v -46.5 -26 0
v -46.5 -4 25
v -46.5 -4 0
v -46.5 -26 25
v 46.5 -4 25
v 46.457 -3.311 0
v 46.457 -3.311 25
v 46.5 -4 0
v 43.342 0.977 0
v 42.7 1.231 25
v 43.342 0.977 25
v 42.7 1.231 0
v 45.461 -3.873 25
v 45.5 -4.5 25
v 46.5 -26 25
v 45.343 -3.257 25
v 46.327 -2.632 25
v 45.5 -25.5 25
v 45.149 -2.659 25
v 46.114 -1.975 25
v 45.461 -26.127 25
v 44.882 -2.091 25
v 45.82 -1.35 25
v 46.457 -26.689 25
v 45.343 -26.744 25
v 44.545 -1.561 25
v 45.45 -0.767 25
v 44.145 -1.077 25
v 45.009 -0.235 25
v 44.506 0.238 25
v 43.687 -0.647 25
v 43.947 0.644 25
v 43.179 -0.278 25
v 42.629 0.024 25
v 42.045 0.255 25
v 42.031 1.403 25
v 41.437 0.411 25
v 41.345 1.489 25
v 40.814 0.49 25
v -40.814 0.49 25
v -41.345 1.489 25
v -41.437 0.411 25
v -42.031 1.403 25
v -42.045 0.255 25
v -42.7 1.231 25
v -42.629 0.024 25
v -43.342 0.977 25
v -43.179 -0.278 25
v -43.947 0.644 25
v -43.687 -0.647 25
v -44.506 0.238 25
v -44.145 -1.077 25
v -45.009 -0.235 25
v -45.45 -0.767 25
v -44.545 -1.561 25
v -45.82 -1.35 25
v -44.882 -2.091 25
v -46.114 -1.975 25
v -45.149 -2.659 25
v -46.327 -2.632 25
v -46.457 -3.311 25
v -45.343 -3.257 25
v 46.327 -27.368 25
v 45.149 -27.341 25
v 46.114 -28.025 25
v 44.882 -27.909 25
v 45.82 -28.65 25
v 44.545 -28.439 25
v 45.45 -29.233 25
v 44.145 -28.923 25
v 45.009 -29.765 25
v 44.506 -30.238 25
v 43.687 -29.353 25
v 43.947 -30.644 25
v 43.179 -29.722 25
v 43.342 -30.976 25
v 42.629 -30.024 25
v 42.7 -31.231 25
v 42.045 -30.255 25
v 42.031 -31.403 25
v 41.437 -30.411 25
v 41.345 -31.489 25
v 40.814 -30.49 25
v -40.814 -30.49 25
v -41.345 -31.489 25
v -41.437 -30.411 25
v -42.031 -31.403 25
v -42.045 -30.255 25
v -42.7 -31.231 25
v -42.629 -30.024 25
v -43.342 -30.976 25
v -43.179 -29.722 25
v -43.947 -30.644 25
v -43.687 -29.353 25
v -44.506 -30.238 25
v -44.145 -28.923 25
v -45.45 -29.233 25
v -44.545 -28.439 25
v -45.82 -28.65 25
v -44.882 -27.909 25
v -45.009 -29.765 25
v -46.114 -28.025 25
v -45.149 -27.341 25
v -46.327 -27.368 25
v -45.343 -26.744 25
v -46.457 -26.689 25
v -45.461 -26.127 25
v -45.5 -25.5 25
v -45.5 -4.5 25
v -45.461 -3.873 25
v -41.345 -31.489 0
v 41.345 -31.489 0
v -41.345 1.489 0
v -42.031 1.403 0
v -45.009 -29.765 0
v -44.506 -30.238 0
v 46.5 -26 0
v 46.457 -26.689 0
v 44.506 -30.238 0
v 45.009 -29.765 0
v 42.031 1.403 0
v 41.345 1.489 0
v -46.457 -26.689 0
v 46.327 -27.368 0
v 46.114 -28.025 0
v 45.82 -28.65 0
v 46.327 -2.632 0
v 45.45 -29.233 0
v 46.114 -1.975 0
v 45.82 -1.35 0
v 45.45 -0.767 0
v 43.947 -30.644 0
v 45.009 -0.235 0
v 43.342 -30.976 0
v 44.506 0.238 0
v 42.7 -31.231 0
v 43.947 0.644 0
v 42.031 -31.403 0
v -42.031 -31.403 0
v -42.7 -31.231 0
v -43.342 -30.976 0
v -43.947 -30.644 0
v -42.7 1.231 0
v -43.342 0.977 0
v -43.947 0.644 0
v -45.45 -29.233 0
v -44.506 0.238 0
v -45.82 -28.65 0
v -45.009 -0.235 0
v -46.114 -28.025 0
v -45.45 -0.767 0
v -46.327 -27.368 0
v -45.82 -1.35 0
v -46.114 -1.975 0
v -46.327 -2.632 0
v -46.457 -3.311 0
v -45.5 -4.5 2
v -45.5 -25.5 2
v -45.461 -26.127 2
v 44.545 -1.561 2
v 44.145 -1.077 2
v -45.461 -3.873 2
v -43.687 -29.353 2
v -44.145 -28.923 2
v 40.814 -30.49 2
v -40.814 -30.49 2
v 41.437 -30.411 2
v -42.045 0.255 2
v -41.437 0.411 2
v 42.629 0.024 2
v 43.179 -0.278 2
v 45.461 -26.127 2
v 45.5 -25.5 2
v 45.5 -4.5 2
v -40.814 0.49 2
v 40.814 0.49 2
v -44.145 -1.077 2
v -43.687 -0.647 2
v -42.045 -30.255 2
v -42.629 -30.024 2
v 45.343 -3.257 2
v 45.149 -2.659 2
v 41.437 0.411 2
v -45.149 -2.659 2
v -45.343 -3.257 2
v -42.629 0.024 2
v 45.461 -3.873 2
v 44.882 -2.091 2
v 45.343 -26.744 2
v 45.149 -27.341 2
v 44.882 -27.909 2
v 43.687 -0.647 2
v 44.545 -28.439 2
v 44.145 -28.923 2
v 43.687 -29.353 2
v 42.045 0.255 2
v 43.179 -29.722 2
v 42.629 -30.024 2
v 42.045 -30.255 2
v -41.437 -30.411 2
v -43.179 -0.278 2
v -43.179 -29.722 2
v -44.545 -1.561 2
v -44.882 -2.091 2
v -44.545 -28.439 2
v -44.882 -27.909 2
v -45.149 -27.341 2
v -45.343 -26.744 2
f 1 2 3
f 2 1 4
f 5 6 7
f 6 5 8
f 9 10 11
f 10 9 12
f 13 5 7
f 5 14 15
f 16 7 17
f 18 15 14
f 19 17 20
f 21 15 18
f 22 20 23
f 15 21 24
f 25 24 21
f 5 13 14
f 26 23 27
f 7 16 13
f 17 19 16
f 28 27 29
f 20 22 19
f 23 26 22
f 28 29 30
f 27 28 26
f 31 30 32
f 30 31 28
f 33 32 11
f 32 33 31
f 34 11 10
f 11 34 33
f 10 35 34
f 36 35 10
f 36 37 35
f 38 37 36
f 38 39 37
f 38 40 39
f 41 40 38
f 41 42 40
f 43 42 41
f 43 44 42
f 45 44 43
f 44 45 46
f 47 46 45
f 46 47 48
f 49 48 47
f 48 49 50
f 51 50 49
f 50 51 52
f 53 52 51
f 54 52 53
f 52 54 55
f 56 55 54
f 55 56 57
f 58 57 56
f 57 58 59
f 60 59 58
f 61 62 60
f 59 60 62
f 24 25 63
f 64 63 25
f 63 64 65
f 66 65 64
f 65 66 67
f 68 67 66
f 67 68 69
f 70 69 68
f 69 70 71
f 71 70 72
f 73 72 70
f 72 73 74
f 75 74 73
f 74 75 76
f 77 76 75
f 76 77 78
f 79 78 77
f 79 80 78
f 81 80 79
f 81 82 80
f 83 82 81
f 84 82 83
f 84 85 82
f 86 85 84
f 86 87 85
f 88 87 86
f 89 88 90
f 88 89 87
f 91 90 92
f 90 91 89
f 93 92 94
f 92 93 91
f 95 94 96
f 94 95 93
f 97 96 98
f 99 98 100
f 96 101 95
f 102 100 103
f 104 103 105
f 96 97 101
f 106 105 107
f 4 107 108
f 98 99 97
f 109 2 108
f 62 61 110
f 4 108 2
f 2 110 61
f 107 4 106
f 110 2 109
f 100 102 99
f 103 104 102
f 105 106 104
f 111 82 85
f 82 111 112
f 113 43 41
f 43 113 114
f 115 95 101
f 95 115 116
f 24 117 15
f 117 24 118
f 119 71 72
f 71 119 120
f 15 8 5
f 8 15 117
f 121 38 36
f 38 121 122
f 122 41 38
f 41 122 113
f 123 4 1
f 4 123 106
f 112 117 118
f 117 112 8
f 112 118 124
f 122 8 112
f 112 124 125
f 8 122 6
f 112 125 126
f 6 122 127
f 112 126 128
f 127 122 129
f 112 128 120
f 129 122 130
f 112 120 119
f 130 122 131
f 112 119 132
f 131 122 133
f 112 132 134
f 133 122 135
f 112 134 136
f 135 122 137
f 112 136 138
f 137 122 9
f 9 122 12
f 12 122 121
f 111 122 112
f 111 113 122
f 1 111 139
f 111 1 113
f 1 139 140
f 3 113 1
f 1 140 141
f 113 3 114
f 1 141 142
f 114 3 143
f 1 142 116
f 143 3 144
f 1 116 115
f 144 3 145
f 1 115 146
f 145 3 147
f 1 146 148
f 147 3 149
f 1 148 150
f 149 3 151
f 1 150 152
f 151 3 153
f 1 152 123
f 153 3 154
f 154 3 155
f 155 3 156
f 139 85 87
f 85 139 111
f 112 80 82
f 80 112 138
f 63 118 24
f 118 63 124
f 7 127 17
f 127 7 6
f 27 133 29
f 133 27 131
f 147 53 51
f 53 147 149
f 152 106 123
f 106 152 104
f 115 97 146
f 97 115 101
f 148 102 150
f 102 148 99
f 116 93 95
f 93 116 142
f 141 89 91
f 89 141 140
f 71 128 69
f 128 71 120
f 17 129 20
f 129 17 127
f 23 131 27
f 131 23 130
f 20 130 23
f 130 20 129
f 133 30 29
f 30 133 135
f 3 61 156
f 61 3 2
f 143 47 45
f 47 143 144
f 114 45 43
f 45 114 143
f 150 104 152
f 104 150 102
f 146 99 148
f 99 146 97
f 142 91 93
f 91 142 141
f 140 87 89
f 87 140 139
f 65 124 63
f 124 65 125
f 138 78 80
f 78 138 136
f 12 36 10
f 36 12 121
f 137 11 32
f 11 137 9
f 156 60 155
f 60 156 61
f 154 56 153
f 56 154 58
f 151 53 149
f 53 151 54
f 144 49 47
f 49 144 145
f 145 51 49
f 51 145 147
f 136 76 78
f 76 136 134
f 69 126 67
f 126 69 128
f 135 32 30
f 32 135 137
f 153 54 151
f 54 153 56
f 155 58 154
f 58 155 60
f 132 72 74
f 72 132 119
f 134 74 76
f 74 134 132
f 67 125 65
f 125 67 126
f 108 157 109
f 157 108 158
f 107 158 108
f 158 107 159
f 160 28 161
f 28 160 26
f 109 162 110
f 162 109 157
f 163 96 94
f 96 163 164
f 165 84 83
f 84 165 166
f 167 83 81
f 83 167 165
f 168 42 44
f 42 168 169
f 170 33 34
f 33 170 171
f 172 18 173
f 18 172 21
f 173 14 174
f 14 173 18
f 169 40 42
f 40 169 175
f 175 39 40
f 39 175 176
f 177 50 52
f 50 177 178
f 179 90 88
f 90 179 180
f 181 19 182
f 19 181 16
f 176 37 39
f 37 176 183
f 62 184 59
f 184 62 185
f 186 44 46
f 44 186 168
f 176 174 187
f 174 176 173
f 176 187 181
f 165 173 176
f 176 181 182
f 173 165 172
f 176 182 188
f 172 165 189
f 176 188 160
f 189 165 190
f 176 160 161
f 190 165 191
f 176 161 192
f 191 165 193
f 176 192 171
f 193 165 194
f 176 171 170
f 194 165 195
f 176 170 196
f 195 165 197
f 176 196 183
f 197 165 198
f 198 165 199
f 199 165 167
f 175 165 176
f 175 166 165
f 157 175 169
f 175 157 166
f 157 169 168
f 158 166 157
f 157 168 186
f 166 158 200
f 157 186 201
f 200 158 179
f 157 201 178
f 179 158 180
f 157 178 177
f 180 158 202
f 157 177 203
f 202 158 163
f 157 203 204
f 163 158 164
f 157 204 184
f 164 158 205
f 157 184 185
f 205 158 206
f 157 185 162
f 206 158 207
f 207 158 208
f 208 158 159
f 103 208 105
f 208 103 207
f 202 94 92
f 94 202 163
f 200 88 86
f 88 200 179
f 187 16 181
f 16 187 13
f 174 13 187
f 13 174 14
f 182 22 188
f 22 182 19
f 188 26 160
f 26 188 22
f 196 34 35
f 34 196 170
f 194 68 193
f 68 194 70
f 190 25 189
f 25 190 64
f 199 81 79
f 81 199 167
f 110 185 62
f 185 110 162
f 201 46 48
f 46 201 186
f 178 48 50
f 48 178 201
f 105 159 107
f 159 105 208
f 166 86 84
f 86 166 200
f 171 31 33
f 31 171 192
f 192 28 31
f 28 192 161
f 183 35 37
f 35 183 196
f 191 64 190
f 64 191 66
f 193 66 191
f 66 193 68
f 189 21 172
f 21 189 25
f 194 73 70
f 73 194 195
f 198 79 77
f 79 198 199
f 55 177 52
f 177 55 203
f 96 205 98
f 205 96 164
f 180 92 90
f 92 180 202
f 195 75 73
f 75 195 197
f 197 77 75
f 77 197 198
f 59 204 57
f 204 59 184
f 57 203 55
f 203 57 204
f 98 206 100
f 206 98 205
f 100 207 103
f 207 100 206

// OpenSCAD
$fn = 50;


difference() {
	union() {
		translate(v = [0, -15.0000000000, 0]) {
			hull() {
				translate(v = [-41.0000000000, 11.0000000000, 0]) {
					cylinder(h = 25, r = 5.5000000000);
				}
				translate(v = [41.0000000000, 11.0000000000, 0]) {
					cylinder(h = 25, r = 5.5000000000);
				}
				translate(v = [-41.0000000000, -11.0000000000, 0]) {
					cylinder(h = 25, r = 5.5000000000);
				}
				translate(v = [41.0000000000, -11.0000000000, 0]) {
					cylinder(h = 25, r = 5.5000000000);
				}
			}
		}
	}
	union() {
		translate(v = [0, -15.0000000000, 2]) {
			hull() {
				translate(v = [-40.5000000000, 10.5000000000, 0]) {
					cylinder(h = 50, r = 5);
				}
				translate(v = [40.5000000000, 10.5000000000, 0]) {
					cylinder(h = 50, r = 5);
				}
				translate(v = [-40.5000000000, -10.5000000000, 0]) {
					cylinder(h = 50, r = 5);
				}
				translate(v = [40.5000000000, -10.5000000000, 0]) {
					cylinder(h = 50, r = 5);
				}
			}
		}
	}
}
